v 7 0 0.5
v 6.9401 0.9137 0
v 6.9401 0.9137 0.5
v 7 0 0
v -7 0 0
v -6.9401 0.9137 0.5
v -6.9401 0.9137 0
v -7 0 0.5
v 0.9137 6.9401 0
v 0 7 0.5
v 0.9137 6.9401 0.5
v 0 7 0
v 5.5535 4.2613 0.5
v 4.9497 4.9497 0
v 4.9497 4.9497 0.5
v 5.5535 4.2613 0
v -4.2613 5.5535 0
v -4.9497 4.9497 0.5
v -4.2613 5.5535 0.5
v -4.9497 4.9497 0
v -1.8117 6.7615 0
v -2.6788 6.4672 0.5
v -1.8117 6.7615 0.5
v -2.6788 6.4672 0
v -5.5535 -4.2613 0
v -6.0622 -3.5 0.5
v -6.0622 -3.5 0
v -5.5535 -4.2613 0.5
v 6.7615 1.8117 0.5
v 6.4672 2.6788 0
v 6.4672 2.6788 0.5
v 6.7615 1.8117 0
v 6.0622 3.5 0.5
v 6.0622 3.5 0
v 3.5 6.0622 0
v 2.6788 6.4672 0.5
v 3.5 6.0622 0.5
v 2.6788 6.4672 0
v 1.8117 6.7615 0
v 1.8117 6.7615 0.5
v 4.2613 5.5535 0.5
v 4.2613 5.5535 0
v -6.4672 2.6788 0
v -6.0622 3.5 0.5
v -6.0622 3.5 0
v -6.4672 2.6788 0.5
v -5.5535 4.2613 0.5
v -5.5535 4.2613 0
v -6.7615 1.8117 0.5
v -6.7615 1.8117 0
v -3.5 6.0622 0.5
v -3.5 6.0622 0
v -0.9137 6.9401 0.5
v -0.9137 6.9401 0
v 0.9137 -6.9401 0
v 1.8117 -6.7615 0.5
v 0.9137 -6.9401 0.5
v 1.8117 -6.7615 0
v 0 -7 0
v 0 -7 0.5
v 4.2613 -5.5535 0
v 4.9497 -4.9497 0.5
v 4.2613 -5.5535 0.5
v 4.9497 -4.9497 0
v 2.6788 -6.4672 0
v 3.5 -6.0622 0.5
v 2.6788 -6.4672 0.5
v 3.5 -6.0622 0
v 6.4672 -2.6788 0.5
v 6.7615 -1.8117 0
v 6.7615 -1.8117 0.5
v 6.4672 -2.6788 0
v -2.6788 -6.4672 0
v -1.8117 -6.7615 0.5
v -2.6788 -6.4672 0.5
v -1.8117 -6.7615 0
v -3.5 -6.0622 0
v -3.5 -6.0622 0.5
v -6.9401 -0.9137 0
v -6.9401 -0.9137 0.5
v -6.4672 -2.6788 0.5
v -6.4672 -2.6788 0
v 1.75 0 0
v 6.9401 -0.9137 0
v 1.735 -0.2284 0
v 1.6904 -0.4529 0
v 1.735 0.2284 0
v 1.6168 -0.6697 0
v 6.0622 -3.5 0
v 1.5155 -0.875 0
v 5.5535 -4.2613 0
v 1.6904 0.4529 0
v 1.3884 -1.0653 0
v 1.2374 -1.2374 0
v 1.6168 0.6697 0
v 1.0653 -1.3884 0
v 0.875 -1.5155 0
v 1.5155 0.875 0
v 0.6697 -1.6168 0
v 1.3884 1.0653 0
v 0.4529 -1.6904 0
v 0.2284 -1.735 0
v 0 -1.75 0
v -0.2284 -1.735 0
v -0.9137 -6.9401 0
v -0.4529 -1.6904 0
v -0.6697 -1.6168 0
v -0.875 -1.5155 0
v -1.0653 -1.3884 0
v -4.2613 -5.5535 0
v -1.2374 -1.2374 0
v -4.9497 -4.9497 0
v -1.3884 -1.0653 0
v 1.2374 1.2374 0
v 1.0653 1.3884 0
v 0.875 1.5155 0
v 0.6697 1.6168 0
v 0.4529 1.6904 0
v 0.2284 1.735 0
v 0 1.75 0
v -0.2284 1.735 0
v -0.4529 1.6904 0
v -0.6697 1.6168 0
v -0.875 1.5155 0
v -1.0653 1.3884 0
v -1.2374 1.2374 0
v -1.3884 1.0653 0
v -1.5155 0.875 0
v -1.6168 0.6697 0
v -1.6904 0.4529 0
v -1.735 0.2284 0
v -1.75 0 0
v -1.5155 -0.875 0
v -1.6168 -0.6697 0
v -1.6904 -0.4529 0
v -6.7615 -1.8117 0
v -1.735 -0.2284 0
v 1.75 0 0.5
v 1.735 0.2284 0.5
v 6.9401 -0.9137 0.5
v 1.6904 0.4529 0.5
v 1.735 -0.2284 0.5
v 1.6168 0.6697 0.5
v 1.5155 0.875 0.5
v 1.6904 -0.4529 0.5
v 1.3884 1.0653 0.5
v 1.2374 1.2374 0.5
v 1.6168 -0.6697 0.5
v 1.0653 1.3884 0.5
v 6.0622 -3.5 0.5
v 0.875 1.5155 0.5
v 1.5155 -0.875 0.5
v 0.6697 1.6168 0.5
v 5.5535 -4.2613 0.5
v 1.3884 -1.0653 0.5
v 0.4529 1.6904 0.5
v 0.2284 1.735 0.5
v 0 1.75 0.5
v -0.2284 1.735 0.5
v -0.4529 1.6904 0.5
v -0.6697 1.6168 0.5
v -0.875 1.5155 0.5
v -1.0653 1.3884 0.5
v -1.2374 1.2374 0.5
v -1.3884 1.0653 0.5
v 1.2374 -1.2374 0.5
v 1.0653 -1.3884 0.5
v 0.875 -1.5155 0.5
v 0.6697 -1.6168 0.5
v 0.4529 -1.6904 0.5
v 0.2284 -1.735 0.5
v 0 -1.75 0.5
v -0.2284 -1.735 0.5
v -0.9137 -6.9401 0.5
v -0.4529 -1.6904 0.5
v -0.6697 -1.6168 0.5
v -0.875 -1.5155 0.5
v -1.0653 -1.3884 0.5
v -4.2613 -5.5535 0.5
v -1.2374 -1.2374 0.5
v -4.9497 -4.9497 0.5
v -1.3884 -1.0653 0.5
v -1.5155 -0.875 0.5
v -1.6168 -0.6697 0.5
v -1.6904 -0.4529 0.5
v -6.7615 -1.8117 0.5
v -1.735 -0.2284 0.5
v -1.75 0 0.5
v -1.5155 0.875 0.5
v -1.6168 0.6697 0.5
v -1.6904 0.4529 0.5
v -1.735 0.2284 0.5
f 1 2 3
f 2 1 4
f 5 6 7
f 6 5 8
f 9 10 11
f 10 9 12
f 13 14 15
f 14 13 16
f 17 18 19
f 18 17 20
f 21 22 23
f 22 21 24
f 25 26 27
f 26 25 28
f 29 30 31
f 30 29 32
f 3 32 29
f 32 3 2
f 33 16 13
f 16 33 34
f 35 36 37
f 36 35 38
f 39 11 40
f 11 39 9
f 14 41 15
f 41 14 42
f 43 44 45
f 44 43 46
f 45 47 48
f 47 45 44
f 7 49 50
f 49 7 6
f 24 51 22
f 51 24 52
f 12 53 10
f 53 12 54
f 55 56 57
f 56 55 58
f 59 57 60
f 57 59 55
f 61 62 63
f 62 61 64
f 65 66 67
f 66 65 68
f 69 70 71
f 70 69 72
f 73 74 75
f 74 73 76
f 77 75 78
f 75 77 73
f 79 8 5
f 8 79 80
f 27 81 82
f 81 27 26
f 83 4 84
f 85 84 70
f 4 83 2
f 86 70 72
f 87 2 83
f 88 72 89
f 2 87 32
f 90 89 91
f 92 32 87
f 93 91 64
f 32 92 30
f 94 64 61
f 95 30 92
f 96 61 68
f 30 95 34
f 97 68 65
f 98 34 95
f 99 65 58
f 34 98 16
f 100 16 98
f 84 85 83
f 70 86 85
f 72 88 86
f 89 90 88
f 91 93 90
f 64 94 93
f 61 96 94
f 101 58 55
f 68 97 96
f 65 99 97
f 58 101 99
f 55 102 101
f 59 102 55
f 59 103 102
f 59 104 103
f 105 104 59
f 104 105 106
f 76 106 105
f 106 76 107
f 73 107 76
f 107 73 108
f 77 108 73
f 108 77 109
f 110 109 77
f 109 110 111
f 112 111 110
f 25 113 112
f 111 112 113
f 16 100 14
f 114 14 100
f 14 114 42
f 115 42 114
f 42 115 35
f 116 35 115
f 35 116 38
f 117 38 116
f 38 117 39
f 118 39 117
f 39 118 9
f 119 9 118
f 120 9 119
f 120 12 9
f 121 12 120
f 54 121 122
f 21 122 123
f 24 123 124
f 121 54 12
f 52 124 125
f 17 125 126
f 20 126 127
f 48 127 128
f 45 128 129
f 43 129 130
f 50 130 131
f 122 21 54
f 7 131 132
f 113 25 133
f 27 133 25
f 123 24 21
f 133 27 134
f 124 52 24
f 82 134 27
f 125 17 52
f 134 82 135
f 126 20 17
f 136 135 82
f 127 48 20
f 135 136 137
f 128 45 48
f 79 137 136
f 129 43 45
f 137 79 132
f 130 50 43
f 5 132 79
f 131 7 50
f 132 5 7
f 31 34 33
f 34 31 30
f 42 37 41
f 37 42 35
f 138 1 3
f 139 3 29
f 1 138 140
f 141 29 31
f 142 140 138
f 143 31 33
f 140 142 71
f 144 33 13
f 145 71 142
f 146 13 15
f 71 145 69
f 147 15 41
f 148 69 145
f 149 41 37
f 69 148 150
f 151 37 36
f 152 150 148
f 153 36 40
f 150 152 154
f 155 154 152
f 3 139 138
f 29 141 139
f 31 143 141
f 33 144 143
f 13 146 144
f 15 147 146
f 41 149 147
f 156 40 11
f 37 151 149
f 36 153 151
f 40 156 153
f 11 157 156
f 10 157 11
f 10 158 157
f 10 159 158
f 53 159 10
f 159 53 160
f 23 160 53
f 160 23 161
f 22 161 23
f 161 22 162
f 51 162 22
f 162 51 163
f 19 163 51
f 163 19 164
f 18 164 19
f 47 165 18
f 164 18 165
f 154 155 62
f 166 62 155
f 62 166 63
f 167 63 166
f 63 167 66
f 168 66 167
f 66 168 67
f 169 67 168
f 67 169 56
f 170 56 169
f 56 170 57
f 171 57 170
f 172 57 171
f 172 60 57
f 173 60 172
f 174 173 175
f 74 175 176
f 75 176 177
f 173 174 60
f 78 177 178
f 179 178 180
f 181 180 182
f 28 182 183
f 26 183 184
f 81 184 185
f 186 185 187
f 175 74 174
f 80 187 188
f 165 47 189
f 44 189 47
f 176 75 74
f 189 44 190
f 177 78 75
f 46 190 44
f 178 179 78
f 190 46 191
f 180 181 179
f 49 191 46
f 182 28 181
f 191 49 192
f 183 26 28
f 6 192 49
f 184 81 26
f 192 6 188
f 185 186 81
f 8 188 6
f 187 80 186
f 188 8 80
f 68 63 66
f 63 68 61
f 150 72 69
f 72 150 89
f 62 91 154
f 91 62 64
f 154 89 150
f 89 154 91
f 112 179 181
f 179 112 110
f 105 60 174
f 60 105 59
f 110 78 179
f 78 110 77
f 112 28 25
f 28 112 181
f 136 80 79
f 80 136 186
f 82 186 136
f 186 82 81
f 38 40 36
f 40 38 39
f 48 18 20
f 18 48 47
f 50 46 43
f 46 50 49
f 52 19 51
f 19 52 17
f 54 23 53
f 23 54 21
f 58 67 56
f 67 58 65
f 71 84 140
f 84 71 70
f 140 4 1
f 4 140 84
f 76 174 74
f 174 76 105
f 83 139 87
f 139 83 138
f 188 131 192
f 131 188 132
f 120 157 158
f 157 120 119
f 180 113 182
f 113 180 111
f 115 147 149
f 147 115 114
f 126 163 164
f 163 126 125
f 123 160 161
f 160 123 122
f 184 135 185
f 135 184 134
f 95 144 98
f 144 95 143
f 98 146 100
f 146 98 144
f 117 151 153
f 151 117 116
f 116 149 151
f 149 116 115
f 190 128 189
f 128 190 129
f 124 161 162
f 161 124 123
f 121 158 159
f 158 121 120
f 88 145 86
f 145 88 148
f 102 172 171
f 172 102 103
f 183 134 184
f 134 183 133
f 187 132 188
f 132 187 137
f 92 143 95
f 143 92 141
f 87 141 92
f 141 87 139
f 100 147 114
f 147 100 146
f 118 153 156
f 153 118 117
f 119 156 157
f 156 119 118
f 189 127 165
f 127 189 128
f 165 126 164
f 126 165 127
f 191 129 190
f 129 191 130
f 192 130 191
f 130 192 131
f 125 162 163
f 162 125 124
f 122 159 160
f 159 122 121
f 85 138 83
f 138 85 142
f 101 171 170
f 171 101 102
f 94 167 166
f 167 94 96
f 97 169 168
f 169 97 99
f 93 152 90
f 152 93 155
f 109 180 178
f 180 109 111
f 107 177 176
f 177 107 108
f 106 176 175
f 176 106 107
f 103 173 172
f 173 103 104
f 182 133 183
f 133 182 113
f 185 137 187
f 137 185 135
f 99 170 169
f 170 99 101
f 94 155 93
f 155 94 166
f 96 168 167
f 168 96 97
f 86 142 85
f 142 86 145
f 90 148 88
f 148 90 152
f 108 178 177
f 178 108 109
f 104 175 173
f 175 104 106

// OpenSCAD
// Gen-DA — assembly gap shim, h = run_clear (rotor face -> flange); copper is inside the flanges
include <parameters.scad>;
$fn = 48;
difference() {
    cylinder(d=spacer_pad_od, h=gap_spacer_h);
    translate([0, 0, -0.1]) cylinder(d=spacer_pad_id, h=gap_spacer_h + 0.2);
}
